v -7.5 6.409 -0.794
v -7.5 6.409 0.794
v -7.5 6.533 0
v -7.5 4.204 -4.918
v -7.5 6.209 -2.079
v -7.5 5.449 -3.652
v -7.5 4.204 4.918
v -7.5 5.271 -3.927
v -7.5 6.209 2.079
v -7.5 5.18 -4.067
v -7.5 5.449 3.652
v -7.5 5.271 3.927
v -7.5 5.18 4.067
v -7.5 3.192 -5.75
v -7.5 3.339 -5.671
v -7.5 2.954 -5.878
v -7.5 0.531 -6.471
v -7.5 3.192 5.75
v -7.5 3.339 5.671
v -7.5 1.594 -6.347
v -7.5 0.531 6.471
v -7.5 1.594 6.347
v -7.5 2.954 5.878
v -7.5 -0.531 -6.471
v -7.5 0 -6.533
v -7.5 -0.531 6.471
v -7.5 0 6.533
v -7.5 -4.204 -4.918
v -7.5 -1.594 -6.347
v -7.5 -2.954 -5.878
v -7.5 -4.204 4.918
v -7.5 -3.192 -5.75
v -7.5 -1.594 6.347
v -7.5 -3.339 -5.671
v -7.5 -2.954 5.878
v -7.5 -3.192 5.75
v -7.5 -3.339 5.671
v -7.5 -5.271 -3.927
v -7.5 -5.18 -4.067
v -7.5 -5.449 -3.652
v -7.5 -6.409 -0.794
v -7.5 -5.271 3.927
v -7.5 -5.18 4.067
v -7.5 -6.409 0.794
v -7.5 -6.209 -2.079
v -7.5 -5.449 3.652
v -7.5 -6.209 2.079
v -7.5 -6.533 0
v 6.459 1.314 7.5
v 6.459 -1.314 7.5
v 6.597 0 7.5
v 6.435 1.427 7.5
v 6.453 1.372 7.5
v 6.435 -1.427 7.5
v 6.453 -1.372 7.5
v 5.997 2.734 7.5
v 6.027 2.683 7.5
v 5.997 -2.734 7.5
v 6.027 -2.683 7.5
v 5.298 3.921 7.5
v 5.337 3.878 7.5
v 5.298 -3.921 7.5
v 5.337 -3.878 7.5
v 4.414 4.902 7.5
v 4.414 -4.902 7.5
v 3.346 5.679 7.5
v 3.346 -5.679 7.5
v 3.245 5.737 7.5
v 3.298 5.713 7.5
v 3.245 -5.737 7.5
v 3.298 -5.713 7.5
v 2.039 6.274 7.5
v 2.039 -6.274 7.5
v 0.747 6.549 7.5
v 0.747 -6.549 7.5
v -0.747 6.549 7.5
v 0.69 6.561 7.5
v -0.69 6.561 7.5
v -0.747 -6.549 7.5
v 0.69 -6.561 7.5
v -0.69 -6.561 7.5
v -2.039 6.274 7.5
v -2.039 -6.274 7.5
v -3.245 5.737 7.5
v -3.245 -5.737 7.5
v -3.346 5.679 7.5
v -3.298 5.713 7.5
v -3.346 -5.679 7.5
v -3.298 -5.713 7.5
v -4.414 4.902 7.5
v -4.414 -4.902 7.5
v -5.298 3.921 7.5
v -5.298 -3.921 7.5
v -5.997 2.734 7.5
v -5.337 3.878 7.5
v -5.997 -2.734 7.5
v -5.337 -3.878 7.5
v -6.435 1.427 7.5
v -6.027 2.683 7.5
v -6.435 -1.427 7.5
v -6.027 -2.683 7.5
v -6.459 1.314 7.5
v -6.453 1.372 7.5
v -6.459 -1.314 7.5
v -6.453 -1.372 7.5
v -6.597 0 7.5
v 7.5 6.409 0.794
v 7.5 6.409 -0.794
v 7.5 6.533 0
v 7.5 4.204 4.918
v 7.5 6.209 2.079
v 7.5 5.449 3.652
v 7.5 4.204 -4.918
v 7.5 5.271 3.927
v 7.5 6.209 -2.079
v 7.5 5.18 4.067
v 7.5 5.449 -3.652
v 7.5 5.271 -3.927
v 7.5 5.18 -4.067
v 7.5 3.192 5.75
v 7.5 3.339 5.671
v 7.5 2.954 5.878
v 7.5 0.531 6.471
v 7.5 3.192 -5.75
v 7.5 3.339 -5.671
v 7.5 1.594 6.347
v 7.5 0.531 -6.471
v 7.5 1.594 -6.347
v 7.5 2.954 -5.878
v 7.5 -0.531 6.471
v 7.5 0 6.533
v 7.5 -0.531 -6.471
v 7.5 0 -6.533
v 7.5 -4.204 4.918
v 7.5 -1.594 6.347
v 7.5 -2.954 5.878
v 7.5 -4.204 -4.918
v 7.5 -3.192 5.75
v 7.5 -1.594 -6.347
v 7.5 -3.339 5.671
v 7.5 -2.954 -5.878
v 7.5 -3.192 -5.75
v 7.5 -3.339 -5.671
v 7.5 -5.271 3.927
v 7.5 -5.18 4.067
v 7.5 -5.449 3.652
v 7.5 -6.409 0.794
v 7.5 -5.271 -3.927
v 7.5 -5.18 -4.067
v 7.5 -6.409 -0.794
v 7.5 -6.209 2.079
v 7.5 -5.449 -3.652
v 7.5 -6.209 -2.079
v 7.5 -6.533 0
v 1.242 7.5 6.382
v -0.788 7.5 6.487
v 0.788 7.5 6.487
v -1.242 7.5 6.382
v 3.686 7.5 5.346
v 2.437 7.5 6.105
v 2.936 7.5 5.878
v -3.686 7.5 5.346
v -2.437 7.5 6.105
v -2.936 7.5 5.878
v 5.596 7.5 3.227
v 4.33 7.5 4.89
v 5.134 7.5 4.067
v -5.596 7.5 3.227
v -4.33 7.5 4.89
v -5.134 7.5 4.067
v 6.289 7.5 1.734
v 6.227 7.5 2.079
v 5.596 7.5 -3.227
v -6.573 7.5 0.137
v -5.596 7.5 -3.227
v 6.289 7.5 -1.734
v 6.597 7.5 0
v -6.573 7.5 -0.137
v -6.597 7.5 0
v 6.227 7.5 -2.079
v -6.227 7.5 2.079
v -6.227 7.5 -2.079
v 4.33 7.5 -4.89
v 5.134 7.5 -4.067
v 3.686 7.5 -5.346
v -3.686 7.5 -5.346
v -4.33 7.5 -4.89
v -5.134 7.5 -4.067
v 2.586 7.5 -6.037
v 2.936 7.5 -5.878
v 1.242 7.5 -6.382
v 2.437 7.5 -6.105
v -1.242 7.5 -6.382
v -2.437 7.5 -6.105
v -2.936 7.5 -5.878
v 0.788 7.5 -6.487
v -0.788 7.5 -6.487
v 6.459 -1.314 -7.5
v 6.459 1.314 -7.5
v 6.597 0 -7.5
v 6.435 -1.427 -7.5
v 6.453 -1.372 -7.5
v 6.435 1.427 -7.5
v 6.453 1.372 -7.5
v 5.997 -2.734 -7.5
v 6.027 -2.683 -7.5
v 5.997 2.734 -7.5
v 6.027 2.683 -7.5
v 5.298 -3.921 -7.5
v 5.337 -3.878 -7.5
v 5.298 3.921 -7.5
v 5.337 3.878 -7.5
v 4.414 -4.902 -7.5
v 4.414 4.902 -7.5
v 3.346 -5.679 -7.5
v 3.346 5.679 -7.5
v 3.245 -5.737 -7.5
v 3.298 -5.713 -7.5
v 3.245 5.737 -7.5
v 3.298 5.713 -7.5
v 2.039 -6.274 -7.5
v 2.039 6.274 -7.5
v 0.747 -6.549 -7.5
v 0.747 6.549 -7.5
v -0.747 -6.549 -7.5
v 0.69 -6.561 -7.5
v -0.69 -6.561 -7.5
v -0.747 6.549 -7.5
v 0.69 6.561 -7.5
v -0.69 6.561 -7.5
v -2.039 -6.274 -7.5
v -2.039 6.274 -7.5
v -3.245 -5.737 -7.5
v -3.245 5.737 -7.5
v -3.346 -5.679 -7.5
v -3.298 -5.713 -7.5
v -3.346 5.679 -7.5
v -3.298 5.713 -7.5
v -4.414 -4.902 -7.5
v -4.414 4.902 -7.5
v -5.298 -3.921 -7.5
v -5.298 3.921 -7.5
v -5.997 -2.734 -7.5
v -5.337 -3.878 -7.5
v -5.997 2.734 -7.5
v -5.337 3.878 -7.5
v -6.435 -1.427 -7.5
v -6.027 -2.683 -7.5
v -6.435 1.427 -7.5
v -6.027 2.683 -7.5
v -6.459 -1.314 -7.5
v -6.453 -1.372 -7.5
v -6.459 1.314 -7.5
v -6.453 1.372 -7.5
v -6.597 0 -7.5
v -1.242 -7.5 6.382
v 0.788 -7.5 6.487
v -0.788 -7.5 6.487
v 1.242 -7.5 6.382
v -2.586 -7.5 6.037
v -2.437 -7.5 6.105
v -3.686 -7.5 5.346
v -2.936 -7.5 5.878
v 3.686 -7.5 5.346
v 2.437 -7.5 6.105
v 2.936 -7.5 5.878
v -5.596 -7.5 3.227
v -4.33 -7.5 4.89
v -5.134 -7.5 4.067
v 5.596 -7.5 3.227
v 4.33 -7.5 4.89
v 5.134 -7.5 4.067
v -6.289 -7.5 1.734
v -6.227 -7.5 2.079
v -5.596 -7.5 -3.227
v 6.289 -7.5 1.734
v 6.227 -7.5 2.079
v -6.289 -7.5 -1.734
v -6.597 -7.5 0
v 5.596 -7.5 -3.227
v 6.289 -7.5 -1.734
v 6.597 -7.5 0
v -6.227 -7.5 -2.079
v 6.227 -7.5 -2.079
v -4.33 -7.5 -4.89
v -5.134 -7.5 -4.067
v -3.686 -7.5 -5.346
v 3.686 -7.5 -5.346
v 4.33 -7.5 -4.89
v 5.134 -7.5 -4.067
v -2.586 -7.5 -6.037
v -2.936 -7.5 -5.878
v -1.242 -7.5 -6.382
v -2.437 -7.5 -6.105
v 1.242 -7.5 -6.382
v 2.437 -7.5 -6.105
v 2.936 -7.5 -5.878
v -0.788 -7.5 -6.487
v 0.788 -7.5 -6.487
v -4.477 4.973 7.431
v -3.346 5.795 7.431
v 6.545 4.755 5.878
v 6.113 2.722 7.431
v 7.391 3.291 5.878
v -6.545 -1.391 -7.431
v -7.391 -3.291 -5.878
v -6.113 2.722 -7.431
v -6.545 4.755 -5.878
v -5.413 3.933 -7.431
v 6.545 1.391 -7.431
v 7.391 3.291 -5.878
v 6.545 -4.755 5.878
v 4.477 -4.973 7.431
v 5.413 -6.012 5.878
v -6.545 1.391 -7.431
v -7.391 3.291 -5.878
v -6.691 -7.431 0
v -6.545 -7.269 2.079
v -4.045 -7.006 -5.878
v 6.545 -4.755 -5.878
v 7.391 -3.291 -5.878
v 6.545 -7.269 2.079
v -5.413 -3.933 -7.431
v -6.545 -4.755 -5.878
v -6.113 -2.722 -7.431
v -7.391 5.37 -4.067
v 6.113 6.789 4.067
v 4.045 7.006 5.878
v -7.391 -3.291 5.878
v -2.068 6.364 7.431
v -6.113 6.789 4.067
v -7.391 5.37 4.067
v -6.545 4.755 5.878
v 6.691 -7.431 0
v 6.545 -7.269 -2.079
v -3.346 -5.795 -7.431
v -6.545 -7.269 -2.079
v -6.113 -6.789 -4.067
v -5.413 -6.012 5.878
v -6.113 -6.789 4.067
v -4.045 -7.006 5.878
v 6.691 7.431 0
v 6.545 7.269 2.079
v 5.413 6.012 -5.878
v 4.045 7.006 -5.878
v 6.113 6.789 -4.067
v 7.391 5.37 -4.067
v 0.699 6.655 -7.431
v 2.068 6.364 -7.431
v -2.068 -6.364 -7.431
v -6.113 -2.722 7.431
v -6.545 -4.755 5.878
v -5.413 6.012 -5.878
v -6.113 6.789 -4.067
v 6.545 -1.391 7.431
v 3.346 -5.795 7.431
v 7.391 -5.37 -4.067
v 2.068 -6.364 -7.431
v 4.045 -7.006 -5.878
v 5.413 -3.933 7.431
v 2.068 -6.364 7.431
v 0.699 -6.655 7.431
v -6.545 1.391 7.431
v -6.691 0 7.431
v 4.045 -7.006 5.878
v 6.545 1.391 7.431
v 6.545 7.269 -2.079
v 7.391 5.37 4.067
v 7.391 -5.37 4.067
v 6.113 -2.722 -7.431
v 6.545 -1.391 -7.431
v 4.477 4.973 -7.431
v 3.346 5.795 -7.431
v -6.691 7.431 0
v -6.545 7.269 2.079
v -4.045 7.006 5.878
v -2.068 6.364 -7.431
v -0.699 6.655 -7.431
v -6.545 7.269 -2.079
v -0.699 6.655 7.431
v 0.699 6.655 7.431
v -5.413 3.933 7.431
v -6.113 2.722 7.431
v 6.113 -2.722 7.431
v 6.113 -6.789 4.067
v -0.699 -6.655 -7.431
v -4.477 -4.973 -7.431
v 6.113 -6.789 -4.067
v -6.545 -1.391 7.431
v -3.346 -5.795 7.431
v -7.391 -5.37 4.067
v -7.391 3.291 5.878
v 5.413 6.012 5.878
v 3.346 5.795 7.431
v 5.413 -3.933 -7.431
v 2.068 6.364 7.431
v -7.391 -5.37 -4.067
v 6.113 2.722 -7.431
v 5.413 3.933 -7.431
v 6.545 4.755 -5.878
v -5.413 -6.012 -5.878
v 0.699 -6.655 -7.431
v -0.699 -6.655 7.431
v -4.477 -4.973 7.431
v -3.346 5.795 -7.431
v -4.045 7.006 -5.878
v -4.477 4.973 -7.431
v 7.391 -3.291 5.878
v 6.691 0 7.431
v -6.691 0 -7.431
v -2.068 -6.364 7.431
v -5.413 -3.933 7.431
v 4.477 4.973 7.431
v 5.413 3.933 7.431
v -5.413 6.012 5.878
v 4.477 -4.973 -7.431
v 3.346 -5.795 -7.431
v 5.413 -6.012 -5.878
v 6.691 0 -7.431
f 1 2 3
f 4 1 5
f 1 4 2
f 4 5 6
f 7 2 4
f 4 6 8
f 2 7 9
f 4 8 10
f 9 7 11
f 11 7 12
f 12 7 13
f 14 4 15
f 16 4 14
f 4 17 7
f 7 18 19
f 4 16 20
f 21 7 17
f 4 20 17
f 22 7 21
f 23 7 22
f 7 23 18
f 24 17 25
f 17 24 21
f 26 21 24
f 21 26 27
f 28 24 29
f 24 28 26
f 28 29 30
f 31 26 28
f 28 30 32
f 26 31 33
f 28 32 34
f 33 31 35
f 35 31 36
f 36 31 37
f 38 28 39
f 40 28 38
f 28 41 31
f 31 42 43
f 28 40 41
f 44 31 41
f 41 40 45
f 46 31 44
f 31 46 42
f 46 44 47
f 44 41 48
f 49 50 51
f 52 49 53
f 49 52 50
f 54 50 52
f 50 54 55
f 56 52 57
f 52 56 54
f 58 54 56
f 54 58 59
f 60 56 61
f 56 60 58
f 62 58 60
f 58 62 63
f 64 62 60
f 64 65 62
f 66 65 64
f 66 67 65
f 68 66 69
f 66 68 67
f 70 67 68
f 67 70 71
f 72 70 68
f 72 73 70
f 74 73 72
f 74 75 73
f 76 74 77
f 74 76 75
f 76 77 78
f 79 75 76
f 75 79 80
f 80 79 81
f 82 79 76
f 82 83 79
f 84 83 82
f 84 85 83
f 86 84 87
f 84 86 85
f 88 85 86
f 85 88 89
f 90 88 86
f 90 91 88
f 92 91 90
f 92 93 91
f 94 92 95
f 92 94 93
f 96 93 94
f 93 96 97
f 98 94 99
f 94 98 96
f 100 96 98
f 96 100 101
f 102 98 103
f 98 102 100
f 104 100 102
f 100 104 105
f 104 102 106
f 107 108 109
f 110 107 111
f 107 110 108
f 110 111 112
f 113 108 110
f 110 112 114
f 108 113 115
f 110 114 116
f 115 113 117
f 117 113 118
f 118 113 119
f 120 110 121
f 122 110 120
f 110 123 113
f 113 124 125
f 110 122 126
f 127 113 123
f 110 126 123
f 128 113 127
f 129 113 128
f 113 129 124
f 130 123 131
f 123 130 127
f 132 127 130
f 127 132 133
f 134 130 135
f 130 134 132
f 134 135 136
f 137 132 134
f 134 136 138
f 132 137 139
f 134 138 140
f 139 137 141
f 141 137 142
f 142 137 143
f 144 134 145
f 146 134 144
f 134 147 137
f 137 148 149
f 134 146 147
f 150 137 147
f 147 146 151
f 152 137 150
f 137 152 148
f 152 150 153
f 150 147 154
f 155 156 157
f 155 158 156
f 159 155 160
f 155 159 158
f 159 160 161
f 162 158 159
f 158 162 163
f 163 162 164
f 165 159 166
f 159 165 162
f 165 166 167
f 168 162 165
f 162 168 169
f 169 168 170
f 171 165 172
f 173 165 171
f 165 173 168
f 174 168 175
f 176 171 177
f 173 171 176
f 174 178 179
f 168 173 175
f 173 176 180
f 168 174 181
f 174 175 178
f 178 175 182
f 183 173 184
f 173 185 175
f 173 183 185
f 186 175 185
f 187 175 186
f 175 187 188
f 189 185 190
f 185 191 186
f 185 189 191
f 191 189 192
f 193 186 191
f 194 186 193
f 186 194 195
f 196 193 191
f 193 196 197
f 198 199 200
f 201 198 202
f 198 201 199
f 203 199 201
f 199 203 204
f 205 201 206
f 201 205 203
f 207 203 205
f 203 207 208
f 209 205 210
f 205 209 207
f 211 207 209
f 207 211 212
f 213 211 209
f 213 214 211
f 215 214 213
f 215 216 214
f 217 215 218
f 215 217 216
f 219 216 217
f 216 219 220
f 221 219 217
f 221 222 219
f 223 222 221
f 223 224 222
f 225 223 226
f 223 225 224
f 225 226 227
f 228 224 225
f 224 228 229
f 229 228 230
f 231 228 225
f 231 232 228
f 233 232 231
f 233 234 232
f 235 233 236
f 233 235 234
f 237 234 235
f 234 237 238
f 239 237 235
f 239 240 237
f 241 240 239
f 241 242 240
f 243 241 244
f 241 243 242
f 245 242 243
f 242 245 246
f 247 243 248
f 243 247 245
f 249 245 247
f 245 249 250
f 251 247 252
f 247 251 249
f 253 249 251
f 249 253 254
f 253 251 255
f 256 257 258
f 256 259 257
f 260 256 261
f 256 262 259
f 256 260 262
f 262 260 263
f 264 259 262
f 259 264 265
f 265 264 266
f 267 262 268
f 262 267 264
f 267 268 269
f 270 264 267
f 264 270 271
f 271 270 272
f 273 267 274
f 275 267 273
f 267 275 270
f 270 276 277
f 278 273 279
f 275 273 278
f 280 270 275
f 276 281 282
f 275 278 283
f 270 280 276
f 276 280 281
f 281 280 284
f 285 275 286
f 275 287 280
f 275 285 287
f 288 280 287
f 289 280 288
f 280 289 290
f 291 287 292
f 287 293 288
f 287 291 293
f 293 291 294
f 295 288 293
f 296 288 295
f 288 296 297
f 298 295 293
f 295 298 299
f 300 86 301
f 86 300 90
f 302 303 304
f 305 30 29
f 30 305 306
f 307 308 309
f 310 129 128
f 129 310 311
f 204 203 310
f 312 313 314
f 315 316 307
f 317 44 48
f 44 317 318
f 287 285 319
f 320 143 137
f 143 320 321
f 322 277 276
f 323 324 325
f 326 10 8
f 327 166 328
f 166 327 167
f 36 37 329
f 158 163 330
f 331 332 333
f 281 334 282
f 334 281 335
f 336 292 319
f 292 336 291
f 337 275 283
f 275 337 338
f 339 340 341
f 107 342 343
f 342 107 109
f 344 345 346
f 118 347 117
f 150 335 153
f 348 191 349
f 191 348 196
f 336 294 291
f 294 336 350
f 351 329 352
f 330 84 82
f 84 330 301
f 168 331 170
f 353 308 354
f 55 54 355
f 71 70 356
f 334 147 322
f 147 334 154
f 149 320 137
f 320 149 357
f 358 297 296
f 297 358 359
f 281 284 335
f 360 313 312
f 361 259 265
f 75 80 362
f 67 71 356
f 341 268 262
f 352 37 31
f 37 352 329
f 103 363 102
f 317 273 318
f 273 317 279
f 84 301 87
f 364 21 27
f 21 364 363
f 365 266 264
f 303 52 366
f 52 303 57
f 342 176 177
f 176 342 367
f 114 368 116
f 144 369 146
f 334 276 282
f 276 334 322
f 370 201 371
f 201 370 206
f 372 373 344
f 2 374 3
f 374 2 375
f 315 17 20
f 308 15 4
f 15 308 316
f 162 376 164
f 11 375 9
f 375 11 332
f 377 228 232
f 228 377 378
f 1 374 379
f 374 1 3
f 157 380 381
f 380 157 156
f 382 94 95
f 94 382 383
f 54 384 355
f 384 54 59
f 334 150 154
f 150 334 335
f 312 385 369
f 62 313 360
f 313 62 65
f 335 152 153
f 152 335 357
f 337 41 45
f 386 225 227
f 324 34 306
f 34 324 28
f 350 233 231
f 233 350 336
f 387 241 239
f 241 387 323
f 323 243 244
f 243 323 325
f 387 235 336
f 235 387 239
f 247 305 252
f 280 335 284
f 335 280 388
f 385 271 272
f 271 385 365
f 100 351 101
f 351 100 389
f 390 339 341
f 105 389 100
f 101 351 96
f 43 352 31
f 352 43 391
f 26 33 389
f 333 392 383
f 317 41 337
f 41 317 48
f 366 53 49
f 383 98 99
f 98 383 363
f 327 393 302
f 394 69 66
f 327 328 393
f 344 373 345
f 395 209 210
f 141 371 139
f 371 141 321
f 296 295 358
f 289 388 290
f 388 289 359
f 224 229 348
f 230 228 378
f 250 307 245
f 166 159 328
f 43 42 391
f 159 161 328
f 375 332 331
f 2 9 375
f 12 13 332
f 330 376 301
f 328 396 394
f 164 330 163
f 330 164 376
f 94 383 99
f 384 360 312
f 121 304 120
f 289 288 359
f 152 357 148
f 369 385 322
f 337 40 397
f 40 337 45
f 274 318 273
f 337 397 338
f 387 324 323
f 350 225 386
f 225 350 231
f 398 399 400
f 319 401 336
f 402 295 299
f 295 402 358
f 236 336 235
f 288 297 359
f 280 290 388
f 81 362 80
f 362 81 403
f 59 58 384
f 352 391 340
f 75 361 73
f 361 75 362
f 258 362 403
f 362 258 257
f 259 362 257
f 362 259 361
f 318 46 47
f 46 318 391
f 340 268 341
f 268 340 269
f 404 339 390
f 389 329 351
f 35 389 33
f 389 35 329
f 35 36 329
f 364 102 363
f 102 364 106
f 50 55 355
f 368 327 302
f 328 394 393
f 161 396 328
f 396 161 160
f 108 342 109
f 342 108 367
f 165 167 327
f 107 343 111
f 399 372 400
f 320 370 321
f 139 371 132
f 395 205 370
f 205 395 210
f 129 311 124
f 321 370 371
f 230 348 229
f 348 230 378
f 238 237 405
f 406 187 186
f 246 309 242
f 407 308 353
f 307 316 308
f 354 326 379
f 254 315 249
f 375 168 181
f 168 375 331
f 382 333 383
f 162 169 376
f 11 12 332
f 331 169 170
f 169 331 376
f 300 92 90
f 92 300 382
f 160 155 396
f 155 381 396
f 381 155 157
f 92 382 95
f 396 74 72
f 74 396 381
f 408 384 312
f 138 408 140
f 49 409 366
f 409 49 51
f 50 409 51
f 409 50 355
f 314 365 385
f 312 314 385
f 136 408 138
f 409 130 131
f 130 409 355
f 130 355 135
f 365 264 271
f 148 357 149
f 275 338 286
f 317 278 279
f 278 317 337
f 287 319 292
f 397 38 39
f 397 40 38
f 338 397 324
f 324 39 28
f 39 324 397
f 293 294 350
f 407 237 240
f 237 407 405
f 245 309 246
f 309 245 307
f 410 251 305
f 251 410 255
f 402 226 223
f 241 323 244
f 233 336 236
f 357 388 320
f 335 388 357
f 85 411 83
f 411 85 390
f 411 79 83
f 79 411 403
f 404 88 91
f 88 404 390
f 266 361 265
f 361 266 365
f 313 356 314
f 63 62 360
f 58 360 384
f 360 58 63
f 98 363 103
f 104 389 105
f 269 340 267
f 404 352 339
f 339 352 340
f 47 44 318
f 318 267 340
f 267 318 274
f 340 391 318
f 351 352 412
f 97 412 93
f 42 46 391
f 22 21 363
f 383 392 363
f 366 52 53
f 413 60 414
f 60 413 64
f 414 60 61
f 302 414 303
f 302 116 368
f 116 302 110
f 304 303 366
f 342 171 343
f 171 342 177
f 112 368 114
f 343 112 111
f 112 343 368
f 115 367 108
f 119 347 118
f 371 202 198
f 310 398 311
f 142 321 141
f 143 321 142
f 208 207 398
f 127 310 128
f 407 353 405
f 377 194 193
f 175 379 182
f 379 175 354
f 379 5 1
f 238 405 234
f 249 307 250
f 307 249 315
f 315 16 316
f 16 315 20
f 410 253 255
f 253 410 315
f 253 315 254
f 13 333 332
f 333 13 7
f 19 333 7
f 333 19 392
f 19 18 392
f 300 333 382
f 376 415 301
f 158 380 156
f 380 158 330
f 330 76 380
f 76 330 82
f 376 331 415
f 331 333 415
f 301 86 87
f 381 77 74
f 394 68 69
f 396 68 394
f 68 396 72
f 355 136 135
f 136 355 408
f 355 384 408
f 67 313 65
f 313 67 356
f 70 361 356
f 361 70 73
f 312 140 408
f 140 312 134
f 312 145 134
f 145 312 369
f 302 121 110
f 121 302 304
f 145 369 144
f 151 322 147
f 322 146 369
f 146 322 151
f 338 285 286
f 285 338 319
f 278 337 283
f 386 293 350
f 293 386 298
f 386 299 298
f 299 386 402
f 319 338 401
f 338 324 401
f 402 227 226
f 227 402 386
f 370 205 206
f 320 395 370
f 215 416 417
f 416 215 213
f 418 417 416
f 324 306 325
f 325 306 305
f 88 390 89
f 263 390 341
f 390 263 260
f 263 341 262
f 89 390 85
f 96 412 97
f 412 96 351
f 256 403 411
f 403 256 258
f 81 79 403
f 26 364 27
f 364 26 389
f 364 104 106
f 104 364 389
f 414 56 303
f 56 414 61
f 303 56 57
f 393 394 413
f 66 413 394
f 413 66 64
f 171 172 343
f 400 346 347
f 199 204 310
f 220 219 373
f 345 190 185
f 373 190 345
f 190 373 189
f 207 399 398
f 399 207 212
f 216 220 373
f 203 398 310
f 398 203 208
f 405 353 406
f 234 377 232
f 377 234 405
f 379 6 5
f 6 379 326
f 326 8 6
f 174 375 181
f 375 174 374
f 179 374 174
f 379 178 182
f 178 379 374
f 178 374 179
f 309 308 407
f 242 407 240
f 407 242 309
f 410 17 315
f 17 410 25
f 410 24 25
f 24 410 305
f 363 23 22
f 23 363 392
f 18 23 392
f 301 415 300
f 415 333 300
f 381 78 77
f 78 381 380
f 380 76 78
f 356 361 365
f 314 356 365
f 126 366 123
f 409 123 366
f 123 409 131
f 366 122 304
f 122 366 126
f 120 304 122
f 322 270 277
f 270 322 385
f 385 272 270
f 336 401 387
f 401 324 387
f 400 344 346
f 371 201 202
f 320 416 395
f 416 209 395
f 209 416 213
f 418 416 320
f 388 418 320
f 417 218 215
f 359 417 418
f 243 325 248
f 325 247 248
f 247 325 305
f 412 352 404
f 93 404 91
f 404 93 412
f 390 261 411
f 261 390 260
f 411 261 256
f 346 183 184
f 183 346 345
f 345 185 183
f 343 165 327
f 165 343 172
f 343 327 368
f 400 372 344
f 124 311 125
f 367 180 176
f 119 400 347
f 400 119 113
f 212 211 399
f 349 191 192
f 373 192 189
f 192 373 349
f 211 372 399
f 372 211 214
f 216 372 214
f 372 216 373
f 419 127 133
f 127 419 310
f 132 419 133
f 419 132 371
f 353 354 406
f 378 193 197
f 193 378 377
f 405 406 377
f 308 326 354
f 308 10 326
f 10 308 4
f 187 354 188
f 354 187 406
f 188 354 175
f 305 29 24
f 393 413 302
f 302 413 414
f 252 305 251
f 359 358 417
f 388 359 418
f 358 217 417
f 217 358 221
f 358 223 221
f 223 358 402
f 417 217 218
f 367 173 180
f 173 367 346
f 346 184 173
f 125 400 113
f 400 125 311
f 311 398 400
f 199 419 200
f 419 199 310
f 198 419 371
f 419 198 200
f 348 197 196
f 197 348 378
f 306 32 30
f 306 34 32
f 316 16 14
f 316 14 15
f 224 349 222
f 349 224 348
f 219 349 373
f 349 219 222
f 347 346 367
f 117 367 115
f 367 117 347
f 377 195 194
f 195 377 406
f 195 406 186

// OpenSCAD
// c.scad 
intersection() {
    cube(15, center=true);
    sphere(10);
}
